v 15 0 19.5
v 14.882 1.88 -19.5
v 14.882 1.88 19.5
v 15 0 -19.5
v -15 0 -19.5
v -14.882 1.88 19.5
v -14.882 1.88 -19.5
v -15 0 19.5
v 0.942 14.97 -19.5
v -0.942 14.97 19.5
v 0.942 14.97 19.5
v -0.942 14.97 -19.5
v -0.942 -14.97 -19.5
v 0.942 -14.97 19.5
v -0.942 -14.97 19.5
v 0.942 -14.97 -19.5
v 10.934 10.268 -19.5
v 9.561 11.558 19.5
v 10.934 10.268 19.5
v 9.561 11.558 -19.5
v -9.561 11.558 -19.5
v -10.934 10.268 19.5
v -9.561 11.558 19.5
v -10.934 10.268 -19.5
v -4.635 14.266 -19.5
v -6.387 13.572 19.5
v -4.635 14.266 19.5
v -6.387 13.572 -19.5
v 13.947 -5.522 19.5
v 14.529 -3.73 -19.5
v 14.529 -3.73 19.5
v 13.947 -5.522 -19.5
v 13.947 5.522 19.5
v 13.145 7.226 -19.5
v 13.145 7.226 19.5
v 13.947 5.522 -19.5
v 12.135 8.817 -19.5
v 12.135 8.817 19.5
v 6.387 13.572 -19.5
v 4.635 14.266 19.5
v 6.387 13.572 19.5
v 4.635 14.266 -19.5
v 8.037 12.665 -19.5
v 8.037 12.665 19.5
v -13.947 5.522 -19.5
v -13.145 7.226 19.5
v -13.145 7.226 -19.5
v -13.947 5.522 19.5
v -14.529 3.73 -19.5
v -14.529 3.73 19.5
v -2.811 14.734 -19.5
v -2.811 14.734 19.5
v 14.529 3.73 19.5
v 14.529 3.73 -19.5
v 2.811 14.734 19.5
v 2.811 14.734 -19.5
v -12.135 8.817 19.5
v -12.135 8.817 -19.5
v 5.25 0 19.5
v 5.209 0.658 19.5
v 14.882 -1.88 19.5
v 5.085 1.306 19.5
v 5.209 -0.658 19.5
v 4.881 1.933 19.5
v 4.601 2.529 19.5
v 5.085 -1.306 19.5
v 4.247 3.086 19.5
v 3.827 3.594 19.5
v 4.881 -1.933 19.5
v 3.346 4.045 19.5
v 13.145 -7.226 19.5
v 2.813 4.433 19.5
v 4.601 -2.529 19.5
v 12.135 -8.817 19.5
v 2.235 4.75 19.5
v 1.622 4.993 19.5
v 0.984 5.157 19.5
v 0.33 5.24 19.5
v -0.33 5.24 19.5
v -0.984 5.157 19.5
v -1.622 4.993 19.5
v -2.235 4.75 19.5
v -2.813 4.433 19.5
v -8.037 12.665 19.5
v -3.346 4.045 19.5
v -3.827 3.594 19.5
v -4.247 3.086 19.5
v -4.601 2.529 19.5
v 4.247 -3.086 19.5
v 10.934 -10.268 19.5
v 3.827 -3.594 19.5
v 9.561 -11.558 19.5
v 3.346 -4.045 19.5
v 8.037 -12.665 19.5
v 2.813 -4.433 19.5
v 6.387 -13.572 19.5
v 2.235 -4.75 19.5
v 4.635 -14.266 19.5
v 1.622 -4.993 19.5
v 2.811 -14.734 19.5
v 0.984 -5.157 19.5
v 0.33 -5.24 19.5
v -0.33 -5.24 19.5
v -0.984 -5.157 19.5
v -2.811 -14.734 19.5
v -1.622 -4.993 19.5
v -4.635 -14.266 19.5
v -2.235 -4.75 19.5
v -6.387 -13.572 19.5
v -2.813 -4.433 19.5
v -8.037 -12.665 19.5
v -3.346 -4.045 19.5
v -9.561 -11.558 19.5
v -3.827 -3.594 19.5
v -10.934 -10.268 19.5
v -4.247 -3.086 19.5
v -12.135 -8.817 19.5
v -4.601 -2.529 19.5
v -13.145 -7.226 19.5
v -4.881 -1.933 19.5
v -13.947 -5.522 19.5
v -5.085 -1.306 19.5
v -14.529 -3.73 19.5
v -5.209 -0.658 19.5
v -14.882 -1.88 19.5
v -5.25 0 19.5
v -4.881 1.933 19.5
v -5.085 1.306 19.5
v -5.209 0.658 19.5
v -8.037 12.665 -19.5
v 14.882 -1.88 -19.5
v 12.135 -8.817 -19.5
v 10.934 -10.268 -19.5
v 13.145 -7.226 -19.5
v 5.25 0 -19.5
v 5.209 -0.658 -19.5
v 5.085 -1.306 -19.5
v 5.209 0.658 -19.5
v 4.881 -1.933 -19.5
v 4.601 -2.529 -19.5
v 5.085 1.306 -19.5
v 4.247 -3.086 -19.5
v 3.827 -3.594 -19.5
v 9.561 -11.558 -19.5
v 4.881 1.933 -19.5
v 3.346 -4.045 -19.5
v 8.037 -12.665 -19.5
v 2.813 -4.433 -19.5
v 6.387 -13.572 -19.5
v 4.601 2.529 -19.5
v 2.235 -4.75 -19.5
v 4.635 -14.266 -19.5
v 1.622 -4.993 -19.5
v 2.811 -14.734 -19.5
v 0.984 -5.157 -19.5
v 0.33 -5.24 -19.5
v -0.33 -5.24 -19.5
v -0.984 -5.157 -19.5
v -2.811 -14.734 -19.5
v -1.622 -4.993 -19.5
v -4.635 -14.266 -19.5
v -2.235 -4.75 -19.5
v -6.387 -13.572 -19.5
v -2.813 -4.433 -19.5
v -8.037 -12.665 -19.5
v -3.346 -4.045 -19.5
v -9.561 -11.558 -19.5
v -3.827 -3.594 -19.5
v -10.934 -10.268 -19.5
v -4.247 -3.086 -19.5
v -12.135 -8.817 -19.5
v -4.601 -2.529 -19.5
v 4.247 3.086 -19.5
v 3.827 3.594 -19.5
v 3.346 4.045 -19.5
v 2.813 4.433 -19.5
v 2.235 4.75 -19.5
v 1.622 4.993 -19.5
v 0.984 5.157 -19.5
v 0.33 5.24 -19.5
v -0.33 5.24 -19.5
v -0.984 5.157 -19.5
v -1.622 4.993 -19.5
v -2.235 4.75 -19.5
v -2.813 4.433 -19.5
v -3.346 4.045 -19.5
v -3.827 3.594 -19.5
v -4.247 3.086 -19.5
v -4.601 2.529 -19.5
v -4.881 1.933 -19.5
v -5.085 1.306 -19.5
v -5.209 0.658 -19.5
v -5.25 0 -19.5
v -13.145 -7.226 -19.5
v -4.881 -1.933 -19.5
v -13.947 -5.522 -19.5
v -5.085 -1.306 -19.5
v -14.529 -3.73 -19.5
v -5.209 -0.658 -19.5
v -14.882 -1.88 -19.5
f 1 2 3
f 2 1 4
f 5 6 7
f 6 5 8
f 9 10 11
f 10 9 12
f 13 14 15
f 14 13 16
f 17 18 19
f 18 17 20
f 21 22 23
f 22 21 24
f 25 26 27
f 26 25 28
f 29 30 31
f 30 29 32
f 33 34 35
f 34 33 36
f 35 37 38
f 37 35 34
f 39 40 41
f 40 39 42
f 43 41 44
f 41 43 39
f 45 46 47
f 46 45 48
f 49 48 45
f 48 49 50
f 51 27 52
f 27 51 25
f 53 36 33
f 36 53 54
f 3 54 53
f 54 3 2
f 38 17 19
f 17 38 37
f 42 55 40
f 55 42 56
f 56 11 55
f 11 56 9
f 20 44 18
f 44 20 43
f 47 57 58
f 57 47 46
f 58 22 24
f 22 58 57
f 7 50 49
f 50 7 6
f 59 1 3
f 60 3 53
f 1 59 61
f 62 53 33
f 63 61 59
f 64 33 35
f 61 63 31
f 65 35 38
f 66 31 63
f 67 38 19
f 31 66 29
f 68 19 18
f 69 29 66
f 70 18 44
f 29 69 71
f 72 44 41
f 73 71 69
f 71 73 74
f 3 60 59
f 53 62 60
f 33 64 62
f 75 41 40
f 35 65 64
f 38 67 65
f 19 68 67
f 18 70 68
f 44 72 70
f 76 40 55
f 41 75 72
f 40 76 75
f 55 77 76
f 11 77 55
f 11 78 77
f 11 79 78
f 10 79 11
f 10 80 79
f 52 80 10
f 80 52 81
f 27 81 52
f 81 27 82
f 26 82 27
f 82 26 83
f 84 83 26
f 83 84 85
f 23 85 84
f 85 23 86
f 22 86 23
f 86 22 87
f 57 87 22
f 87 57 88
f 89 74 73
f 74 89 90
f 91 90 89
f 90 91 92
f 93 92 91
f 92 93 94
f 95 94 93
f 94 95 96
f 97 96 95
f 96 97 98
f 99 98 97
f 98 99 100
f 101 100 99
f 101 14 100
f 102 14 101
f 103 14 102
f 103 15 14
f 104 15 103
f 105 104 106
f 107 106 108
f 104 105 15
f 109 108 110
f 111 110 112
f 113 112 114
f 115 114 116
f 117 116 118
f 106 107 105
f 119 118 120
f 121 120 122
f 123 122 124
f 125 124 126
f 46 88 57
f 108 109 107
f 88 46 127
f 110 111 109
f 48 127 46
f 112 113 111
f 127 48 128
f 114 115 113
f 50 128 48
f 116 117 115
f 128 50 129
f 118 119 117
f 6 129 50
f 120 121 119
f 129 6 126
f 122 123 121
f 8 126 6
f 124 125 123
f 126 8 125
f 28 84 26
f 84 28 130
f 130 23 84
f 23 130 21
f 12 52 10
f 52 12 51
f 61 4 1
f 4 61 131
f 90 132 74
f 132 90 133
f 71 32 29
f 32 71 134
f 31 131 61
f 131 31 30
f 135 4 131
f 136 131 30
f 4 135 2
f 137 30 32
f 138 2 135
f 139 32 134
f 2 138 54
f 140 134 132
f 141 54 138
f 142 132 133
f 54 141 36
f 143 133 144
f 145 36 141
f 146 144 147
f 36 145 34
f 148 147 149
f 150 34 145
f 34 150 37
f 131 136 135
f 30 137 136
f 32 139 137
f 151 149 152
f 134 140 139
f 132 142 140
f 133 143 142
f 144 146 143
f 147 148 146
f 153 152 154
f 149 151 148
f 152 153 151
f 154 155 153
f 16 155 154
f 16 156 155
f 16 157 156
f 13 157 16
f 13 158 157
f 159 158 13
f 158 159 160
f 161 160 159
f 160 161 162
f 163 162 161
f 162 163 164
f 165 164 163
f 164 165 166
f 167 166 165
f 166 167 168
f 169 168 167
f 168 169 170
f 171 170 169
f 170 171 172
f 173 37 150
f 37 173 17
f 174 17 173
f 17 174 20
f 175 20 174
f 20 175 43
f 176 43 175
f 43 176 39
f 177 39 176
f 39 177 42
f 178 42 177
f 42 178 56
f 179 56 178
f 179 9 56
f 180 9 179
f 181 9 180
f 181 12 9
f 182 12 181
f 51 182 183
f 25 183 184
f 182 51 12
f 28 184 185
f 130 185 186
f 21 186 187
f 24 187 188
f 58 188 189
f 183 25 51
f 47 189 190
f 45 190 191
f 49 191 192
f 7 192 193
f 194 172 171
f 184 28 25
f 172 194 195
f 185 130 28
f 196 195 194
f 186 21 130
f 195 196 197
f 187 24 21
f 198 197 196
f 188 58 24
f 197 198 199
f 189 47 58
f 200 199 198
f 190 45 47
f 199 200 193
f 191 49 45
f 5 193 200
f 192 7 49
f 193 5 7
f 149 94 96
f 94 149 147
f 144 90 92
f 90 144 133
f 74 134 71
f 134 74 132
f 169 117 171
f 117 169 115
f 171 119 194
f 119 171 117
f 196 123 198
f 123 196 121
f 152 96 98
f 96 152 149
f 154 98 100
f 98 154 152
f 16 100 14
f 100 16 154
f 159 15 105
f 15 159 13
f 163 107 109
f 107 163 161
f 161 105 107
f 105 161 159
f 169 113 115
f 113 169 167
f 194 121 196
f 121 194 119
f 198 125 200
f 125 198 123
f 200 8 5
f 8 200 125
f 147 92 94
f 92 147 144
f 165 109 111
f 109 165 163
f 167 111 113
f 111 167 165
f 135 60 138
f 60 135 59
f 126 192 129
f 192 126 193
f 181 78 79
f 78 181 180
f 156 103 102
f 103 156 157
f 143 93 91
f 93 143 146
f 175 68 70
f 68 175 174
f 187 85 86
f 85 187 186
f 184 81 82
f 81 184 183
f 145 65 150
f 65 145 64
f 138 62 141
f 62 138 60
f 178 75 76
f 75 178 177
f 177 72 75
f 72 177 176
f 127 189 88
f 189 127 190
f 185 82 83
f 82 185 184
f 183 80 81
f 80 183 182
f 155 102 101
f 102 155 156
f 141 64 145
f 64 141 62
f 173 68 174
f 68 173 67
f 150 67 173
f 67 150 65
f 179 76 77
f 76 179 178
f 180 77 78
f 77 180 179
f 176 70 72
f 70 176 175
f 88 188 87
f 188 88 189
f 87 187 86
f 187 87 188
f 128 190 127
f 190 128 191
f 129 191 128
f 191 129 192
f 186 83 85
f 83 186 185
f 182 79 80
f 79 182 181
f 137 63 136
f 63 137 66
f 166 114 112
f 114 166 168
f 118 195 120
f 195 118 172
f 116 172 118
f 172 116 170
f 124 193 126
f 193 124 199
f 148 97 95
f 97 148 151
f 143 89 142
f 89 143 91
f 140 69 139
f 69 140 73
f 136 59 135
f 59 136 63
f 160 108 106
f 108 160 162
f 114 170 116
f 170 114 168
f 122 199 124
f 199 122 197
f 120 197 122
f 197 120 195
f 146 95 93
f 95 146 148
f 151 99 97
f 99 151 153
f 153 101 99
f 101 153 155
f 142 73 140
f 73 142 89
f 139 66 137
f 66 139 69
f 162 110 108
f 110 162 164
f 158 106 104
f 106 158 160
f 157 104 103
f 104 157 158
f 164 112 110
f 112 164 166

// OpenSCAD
$fn = 50;


difference() {
	union() {
		translate(v = [0, 0, -19.5000000000]) {
			cylinder(h = 39, r = 15.0000000000);
		}
	}
	union() {
		translate(v = [0, 0, -100.0000000000]) {
			cylinder(h = 200, r = 5.2500000000);
		}
	}
}
